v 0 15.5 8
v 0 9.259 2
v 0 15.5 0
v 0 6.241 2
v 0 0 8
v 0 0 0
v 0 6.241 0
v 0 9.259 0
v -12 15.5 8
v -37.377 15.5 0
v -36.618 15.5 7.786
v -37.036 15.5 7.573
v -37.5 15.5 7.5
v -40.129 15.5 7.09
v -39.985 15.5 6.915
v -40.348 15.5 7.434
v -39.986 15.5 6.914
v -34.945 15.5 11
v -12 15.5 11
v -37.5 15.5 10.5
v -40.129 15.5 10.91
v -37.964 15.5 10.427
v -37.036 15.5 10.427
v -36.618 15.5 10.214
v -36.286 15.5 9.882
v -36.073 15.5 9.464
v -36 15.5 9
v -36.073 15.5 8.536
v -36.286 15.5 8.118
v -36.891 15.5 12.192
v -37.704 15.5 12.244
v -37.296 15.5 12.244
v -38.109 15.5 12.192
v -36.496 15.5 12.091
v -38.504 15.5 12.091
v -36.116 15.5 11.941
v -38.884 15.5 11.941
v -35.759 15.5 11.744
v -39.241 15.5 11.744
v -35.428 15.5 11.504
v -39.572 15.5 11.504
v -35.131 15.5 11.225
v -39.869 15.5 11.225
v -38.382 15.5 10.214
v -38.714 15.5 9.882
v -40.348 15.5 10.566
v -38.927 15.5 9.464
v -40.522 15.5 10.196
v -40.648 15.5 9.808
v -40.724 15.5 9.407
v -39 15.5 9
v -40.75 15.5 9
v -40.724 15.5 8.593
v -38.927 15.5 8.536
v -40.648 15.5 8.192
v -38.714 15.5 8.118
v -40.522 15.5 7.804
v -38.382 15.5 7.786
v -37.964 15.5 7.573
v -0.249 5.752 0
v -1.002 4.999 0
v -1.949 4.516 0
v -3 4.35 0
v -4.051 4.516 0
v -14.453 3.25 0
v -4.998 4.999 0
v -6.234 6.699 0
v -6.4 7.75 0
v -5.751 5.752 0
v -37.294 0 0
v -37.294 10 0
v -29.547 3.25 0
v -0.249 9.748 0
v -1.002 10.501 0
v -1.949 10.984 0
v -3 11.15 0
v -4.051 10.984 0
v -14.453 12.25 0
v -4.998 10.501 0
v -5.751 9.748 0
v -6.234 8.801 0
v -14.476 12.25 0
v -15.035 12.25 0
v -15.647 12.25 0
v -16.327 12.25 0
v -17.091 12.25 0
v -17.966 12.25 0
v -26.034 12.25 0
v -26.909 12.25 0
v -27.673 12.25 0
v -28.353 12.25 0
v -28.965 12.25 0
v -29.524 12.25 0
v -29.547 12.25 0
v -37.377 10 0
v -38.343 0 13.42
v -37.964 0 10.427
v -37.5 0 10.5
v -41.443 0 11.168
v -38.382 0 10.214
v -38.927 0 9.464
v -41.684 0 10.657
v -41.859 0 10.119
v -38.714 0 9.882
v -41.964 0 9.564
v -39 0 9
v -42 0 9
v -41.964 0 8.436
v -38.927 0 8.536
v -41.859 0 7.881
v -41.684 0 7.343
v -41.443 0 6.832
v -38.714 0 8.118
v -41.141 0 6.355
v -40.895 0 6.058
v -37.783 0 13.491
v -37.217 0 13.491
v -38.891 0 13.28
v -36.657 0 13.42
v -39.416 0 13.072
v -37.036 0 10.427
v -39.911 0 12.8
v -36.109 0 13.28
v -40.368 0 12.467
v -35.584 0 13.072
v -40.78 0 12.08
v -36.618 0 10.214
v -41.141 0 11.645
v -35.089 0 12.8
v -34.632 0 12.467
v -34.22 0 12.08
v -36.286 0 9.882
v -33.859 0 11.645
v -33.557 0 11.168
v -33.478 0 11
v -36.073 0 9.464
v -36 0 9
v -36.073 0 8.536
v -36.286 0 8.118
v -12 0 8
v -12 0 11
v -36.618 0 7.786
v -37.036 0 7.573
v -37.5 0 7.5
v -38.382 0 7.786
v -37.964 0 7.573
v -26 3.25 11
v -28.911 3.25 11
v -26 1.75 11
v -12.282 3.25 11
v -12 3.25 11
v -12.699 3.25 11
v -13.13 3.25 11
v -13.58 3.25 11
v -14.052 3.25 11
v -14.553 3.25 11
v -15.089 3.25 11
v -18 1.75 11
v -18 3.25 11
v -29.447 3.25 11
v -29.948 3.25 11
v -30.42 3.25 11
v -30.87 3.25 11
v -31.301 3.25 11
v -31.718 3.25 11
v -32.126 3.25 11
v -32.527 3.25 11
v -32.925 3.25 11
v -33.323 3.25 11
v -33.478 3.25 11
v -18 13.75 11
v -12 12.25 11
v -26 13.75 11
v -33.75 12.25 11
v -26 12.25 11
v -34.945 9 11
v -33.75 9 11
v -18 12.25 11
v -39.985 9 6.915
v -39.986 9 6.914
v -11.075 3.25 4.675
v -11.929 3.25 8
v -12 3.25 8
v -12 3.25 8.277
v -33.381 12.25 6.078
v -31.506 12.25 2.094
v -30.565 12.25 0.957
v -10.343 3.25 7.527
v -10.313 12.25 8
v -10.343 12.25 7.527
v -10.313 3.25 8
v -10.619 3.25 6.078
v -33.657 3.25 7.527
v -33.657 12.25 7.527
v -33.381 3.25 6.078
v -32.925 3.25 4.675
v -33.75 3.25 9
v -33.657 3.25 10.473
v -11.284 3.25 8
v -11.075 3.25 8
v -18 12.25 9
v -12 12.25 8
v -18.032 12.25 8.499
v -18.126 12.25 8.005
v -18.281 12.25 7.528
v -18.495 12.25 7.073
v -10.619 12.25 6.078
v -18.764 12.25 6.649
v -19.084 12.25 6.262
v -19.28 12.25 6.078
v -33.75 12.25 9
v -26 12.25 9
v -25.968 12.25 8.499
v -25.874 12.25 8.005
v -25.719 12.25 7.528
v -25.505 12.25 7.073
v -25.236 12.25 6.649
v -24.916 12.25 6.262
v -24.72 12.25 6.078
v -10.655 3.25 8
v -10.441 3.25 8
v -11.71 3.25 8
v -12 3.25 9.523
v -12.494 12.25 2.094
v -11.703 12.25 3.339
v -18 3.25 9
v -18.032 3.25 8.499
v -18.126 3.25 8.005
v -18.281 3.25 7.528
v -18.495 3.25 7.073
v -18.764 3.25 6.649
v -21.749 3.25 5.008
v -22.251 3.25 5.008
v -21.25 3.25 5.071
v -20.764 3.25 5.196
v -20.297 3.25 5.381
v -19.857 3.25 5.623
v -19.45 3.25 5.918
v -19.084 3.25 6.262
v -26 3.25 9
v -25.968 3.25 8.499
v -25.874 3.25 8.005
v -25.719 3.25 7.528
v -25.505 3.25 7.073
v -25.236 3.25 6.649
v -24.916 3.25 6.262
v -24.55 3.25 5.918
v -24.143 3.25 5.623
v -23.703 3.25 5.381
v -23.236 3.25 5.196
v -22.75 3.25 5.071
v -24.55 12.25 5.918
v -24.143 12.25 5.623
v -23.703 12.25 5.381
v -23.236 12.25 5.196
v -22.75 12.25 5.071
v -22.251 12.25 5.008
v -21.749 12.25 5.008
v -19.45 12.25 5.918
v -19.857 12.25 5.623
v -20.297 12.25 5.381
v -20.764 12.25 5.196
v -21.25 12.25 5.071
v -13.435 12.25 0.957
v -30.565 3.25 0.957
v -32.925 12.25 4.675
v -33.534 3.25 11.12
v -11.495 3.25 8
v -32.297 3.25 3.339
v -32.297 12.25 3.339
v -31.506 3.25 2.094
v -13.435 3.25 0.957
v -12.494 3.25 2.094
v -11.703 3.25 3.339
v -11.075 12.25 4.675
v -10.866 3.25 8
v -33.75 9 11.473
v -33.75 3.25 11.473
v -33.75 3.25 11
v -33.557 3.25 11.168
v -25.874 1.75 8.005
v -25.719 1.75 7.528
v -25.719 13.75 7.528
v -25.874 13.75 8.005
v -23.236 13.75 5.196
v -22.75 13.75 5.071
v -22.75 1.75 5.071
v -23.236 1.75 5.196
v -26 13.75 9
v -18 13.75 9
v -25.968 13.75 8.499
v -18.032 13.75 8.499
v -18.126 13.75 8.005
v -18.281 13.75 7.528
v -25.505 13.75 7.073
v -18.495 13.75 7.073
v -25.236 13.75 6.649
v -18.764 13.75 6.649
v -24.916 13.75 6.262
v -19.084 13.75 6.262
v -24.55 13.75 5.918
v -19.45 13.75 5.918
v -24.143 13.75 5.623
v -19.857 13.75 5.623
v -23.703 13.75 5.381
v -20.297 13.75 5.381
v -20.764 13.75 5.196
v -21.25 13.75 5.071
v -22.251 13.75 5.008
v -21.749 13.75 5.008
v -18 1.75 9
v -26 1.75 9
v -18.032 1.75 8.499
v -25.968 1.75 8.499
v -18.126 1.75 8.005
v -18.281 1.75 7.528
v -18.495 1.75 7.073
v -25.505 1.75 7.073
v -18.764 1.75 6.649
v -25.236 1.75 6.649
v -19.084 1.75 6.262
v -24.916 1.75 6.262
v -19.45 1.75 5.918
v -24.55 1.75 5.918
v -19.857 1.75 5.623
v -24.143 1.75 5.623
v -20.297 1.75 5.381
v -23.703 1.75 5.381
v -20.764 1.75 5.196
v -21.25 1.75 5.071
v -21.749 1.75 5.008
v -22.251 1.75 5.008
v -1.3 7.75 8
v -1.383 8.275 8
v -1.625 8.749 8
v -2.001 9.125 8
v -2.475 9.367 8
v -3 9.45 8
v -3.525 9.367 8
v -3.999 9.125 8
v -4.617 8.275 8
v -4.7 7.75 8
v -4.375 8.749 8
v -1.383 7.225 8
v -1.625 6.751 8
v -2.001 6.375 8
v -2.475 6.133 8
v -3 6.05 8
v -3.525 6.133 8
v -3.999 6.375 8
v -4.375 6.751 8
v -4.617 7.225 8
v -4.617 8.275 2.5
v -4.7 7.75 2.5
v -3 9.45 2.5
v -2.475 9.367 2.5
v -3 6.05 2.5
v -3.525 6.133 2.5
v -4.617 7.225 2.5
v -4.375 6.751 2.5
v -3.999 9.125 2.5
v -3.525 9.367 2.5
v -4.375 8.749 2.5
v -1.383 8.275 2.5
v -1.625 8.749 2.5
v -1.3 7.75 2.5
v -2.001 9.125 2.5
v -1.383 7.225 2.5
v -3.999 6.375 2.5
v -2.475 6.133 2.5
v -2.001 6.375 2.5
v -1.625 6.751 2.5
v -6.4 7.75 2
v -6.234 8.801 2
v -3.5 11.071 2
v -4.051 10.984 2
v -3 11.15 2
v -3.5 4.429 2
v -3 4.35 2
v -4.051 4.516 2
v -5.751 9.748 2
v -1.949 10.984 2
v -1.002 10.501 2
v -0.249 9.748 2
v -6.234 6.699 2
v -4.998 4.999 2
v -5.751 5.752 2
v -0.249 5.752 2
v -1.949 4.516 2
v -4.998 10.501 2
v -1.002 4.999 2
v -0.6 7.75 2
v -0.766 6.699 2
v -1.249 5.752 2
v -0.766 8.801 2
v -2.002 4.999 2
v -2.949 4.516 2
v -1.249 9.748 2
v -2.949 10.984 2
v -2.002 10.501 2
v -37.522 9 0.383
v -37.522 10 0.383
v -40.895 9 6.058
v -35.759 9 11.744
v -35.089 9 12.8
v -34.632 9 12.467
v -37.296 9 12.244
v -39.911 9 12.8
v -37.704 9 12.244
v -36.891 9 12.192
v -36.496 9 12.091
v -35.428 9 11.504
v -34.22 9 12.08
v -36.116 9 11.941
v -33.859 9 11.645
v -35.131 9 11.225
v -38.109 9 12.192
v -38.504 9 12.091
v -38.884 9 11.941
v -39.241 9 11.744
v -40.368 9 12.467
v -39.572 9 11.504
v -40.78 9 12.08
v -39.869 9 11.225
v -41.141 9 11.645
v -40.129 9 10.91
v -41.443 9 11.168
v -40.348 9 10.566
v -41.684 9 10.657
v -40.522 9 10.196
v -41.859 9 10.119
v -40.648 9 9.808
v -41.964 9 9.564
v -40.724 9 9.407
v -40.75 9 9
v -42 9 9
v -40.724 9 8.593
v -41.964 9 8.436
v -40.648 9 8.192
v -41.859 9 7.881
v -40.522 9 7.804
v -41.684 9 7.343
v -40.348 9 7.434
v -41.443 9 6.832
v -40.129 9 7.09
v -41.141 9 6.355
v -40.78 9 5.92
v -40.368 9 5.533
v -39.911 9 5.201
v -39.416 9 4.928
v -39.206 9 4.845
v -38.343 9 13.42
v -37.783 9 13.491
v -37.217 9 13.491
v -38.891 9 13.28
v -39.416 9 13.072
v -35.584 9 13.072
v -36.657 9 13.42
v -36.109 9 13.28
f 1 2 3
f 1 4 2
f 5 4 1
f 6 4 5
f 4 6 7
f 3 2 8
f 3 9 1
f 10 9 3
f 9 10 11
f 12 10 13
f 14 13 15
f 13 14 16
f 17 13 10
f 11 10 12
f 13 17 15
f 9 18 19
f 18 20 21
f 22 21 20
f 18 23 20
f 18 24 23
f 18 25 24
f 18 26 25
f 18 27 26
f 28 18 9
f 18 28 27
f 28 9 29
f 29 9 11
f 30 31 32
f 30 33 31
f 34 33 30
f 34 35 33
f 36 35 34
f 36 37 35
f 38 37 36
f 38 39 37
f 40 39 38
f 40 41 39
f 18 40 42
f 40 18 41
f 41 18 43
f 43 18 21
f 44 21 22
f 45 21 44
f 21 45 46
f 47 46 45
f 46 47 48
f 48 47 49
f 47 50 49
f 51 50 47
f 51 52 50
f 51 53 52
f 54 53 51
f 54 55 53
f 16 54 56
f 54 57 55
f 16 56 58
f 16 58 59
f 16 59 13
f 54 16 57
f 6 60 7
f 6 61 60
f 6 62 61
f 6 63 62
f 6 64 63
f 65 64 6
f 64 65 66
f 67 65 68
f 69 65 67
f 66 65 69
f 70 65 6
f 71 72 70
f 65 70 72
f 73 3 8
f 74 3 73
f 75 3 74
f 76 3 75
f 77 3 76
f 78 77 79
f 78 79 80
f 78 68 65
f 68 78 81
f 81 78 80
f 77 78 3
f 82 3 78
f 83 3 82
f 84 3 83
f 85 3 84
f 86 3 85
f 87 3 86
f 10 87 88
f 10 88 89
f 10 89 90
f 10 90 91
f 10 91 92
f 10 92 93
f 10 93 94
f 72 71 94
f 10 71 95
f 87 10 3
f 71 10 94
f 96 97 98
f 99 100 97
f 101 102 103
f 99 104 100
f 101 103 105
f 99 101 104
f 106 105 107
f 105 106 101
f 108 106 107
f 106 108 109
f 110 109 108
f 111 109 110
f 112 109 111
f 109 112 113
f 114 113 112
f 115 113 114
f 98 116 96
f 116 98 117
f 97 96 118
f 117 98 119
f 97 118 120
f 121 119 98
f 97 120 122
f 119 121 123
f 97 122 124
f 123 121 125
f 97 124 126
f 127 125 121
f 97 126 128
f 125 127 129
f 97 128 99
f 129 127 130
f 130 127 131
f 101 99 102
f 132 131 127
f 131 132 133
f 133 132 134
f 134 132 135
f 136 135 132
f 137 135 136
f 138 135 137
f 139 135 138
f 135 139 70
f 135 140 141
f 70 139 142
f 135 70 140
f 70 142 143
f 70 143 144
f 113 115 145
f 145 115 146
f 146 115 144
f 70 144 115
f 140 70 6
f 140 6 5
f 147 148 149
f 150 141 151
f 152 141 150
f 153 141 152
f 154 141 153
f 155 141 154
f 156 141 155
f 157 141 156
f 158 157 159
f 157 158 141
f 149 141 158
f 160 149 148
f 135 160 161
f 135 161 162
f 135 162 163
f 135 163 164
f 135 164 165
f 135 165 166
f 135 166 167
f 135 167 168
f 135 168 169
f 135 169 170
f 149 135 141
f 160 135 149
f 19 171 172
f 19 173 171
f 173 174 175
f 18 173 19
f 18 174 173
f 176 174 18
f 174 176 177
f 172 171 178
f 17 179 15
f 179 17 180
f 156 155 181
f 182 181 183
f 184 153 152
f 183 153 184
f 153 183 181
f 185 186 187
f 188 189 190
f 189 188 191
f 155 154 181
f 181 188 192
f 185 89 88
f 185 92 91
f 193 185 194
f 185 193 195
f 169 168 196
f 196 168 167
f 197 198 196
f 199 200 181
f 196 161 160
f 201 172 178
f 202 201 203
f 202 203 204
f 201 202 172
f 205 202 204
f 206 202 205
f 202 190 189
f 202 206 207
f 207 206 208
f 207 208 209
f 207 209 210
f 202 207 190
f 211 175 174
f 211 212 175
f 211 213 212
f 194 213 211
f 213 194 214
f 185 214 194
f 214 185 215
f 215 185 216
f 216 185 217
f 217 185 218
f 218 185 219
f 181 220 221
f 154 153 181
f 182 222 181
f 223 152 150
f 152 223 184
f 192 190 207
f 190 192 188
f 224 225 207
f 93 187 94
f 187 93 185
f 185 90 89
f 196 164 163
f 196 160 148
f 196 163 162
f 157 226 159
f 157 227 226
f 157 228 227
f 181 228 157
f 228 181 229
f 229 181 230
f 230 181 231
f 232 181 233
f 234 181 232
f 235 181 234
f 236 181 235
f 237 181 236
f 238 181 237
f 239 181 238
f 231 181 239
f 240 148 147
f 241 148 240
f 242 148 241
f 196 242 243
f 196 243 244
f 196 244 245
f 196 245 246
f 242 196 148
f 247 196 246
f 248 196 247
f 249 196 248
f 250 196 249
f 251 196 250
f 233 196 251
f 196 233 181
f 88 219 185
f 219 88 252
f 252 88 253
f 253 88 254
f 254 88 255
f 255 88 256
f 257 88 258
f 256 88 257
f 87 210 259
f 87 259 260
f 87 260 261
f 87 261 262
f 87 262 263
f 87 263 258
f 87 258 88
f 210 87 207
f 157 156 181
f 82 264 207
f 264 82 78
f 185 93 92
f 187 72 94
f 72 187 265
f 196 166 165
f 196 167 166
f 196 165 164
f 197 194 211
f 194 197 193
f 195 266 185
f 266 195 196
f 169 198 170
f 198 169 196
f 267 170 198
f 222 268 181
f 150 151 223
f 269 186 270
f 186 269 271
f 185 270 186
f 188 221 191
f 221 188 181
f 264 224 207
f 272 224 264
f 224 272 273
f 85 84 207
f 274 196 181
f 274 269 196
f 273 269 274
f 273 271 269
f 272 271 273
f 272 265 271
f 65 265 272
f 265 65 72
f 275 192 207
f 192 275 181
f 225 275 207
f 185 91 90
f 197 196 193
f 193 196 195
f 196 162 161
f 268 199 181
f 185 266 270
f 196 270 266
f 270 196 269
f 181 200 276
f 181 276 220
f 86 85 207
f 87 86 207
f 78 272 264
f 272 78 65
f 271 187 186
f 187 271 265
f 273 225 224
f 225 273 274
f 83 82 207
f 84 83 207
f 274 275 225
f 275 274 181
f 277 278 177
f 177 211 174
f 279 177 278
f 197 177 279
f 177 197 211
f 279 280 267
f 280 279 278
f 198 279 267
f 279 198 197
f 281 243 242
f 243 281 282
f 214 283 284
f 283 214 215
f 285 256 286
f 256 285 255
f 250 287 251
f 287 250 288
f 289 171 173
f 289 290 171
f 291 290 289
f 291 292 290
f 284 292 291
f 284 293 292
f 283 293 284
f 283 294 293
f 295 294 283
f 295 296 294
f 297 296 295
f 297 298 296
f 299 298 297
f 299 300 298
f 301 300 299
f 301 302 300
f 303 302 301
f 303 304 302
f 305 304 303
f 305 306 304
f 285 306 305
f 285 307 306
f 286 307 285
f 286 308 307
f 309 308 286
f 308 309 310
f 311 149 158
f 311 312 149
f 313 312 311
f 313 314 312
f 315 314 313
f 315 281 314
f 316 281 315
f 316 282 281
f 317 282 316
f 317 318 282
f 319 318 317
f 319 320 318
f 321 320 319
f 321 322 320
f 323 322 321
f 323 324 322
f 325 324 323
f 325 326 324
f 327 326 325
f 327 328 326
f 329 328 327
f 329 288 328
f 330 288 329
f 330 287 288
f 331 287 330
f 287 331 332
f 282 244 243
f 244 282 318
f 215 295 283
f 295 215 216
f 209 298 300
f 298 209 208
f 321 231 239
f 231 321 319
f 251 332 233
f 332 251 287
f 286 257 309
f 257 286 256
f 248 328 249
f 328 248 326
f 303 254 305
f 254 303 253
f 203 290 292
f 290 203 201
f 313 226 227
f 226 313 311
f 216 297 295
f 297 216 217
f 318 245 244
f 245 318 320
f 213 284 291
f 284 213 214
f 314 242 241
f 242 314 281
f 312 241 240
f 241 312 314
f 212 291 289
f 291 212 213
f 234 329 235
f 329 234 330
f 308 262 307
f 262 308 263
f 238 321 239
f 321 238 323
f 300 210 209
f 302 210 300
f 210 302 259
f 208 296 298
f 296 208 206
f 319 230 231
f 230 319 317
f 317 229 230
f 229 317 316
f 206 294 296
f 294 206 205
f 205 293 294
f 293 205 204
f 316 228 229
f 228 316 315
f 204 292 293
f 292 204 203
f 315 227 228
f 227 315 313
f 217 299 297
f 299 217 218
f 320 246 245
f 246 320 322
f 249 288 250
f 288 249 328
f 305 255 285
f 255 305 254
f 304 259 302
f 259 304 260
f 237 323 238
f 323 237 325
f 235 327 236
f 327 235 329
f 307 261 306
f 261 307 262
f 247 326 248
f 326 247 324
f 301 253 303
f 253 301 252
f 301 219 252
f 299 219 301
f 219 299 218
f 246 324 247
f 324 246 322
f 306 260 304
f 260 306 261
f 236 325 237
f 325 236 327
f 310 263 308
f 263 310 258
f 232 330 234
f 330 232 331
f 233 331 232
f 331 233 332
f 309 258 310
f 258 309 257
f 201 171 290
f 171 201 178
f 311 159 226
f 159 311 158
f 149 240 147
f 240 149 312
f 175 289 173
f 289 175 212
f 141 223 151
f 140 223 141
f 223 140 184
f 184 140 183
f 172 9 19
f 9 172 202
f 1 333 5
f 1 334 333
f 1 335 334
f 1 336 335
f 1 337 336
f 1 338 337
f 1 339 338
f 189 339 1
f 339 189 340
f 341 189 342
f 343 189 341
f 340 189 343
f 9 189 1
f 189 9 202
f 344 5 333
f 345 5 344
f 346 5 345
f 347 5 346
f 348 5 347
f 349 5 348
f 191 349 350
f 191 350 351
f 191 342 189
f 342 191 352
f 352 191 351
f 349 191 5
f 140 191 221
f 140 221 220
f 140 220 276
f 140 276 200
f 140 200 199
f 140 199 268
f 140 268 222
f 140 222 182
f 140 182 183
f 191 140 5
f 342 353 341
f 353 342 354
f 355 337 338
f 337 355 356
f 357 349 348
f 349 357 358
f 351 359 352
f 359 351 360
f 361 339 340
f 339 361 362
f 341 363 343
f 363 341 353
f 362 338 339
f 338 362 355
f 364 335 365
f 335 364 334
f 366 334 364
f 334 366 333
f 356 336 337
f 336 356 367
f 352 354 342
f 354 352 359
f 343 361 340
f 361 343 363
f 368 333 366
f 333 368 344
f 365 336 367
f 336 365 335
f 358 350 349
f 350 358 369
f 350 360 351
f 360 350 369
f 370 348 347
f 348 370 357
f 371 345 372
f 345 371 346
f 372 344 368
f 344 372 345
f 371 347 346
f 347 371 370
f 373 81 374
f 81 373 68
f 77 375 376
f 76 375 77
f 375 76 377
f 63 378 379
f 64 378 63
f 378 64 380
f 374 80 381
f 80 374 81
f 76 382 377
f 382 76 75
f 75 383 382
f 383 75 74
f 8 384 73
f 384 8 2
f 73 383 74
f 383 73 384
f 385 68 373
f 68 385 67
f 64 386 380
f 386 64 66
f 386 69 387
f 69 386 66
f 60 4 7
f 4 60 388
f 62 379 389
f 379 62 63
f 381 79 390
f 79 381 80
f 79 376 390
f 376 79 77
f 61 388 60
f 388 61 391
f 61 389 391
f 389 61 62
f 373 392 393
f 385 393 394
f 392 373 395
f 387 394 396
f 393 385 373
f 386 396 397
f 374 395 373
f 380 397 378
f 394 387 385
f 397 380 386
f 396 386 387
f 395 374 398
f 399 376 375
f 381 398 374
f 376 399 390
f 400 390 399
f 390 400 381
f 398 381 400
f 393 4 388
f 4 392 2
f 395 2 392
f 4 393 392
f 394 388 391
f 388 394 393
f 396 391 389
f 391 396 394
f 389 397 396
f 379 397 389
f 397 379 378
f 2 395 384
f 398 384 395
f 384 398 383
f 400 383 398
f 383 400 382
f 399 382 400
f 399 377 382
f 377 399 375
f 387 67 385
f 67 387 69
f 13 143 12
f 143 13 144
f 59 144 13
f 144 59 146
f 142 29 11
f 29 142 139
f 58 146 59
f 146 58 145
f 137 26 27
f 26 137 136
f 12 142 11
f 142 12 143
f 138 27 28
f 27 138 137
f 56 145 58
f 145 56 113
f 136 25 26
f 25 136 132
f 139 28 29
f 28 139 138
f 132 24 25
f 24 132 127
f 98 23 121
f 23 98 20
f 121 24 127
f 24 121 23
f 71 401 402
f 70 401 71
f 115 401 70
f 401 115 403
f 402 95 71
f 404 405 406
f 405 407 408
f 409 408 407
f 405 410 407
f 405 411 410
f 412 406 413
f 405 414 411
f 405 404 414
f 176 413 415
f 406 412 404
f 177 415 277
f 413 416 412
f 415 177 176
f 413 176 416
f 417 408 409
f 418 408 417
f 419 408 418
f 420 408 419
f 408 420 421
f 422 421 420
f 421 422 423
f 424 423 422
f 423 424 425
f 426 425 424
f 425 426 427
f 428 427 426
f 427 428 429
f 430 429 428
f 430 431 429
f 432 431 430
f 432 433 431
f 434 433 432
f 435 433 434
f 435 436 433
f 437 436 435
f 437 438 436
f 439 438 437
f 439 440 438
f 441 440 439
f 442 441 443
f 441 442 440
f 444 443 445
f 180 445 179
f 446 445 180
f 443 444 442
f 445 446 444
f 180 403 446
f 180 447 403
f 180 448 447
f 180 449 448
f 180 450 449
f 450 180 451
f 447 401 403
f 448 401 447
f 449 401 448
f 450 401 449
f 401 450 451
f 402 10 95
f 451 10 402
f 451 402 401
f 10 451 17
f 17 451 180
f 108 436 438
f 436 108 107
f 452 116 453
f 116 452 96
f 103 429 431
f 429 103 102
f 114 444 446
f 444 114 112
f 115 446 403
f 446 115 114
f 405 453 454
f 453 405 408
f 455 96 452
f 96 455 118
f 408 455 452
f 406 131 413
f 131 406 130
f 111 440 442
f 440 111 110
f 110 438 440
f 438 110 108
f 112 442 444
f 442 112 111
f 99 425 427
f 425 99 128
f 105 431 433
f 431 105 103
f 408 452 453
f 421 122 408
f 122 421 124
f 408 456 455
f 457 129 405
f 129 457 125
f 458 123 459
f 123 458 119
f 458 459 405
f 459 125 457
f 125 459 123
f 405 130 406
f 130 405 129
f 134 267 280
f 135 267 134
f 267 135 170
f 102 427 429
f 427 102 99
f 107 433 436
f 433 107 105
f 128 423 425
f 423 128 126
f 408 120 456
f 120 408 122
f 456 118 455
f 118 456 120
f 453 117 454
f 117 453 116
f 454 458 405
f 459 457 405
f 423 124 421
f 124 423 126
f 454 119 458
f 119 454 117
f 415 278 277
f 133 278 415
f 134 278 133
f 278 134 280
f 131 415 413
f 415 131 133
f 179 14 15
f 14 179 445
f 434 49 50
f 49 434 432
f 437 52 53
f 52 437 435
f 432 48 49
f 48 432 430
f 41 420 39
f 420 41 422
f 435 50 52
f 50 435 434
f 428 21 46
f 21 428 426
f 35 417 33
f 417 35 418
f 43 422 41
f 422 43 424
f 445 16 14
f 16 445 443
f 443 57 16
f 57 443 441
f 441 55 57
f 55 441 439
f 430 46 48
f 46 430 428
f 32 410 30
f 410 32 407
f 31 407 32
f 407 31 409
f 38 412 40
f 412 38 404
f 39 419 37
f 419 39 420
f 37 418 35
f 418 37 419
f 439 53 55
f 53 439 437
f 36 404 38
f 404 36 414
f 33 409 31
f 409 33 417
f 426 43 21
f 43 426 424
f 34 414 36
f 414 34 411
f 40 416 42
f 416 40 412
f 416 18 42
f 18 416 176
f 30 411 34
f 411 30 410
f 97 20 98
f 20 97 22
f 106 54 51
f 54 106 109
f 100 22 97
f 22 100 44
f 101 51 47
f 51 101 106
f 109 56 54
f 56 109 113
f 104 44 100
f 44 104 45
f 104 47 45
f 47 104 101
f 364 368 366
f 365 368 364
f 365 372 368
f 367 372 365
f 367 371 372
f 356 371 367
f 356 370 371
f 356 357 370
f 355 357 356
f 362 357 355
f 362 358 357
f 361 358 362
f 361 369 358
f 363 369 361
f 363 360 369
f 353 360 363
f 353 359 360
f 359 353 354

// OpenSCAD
// file: head-part03.scad
include <config.scad>
use <lib/halfcube.scad>

x=42; // width
y=15.5; // depth
z=12; // height
z0=z-2-1;

d1=23.5;
d2=8;
d3=3.4;
d4=9;
d5=3;
x1=18.5;
h1=9;
h2=12;
z1=z-3;

d6=6.5;
hh=6.5;
d7=6.8;

module head_part03() {
// freecad positioning
//translate([18.5,8,60.5])rotate([180,90,0])
mirror([1,0,0])
union(){
	translate([4,y/2,2])cylinder(0.5,r=d7/2,$fn=20);
difference(){
	// main part
	cube([x,y,z]);
	translate([0,-1,z-1])cube([x,y+2,z]); // Отрезаем весь верх
	translate([x-4.5,-1,z1])cube([d4,y+2,d4]);
	translate([x-4.5,-1,z1])rotate([0,40,0])cube([d4,y+2,d4]);

	// bearing
	translate([x1,y/2+h1/2,z0])rotate([90,0,0])cylinder(h1,r=d1/2,$fn=50);
	translate([x1,y/2,d1/2+z0])cube([d1,h1,d1],true);
	translate([x1,y/2+h2/2,z0])rotate([90,0,0])cylinder(h2,r=d2/2,$fn=50);
	translate([x1,y/2,d2/2+z0])cube([d2,h2,d2],true);

	// top slot
	translate([-1,-1,z-4])cube([x1-9,y+2,5]);
	translate([3,y/2,-1])cylinder(z+2,r=d3/2,$fn=20);
	translate([3,y/2,-1])cylinder(3,r=d7/2,$fn=20);

	// bottom round cut
	translate([x-4.5,-1,z1])rotate([-90,0,0])cylinder(y+2,r=d5/2,$fn=20);
	translate([x+1,-1,-1])rotate([0,-90,0])halfcube([7.6+3,y+2-hh,6.3],"y");

	translate([x-4.5,-1,z1])rotate([0,40,0])cube([d4,y+2,d4]);
	translate([x+1,y-hh,-1])rotate([0,-90,0])halfcube([11.9+4,hh+1,6],"y");
}

// bottom round thing
difference(){
	union(){
		translate([x-4.5,0,z1])rotate([-90,0,0])cylinder(y-hh,r=d4/2,$fn=50);
		translate([x-4.5,0,z1])rotate([-90,0,0])cylinder(y,r=d6/2,$fn=50);
	}
	translate([x-4.5,-1,z1])rotate([-90,0,0])cylinder(y+2,r=d5/2,$fn=20);
    // bearing
	translate([x1,y/2+h1/2,z0])rotate([90,0,0])cylinder(h1,r=d1/2,$fn=50);
    translate([x1,y/2,d1/2+z0])cube([d1,h1,d1],true);

}
}
}

head_part03();
// file: lib/halfcube.scad
// библиотечная функция - прямоугольная призма
/*
 * a - вектор [x,y,z] - куб, в который вписана призма
 * orient - строка "x"/"y"/"z" - ориентация треугольной грани призмы
 * center - логическое true/false - позиционирование относительно центра или с угла
 *
 * Автор - Andrew Answer (Андрей Нуждов): http://answe.ru
 * Сделано для проекта SibRap: http://reprap.org/wiki/SibRap
 * GitHub: https://github.com/andrewanswer/sibrap
 */
module halfcube(a, orient, center) {
	translate(center==true?-a/2:0) {
		if (orient=="x")
			polyhedron (points = [[a[0],0,a[2]], [0,0,a[2]], [0,a[1],0], [0,0,0], [a[0],0,0], [a[0],a[1],0]], faces = [[1,3,2], [4,0,5], [3,1,4], [1,2,5], [1,0,4], [0,1,5],  [5,2,4], [4,2,3]]);
		if (orient=="y")
			polyhedron (points = [[0,a[1],a[2]], [0,0,a[2]], [0,a[1],0], [0,0,0], [a[0],0,0], [a[0],a[1],0]], faces = [[1,3,2], [1,2,0], [3,1,4], [0,2,5], [1,5,4], [1,0,5],  [5,2,4], [4,2,3]]);
		if (orient=="z")
			polyhedron (points = [[0,a[1],a[2]], [0,0,a[2]], [0,a[1],0], [0,0,0], [a[0],0,0], [a[0],0,a[2]]], faces = [[1,3,2], [1,2,0], [3,1,4], [0,2,5], [1,5,4], [1,0,5],  [5,2,4], [4,2,3]]);
	}
}

// test
/*
halfcube([10,20,30],"x",true);
halfcube([10,20,30],"y",true);
halfcube([10,20,30],"z",false);
*/
// file: config.scad
/**
 * Глобальный конфигурационный файл
 */
// качество цилиндров
$fn=30;

// избегание совпадения граней
DELTA=0.1;

// толщина рамы
FRAME=18;

// расстояние от стенок до гайки
DELTA_NUT = 0.3;
// высота, макс. диаметр, между стенками (размер ключа)
// гайка М3
m3_base=[2.4,6.4,5.5];
m3_hole=m3_base+[DELTA_NUT,DELTA_NUT,DELTA_NUT];
//[3,7,6]
// гайка М4
m4_base=[3.2,8.1,6.9];
m4_hole=m4_base+[DELTA_NUT,DELTA_NUT,DELTA_NUT];
// гайка М5
m5_base=[3.8,9.1,7.9];
m5_hole=m5_base+[DELTA_NUT,DELTA_NUT,DELTA_NUT];
// main file
include <config.scad>
use <lib/halfcube.scad>
include <head-part03.scad>

x1=22;//18.5;
